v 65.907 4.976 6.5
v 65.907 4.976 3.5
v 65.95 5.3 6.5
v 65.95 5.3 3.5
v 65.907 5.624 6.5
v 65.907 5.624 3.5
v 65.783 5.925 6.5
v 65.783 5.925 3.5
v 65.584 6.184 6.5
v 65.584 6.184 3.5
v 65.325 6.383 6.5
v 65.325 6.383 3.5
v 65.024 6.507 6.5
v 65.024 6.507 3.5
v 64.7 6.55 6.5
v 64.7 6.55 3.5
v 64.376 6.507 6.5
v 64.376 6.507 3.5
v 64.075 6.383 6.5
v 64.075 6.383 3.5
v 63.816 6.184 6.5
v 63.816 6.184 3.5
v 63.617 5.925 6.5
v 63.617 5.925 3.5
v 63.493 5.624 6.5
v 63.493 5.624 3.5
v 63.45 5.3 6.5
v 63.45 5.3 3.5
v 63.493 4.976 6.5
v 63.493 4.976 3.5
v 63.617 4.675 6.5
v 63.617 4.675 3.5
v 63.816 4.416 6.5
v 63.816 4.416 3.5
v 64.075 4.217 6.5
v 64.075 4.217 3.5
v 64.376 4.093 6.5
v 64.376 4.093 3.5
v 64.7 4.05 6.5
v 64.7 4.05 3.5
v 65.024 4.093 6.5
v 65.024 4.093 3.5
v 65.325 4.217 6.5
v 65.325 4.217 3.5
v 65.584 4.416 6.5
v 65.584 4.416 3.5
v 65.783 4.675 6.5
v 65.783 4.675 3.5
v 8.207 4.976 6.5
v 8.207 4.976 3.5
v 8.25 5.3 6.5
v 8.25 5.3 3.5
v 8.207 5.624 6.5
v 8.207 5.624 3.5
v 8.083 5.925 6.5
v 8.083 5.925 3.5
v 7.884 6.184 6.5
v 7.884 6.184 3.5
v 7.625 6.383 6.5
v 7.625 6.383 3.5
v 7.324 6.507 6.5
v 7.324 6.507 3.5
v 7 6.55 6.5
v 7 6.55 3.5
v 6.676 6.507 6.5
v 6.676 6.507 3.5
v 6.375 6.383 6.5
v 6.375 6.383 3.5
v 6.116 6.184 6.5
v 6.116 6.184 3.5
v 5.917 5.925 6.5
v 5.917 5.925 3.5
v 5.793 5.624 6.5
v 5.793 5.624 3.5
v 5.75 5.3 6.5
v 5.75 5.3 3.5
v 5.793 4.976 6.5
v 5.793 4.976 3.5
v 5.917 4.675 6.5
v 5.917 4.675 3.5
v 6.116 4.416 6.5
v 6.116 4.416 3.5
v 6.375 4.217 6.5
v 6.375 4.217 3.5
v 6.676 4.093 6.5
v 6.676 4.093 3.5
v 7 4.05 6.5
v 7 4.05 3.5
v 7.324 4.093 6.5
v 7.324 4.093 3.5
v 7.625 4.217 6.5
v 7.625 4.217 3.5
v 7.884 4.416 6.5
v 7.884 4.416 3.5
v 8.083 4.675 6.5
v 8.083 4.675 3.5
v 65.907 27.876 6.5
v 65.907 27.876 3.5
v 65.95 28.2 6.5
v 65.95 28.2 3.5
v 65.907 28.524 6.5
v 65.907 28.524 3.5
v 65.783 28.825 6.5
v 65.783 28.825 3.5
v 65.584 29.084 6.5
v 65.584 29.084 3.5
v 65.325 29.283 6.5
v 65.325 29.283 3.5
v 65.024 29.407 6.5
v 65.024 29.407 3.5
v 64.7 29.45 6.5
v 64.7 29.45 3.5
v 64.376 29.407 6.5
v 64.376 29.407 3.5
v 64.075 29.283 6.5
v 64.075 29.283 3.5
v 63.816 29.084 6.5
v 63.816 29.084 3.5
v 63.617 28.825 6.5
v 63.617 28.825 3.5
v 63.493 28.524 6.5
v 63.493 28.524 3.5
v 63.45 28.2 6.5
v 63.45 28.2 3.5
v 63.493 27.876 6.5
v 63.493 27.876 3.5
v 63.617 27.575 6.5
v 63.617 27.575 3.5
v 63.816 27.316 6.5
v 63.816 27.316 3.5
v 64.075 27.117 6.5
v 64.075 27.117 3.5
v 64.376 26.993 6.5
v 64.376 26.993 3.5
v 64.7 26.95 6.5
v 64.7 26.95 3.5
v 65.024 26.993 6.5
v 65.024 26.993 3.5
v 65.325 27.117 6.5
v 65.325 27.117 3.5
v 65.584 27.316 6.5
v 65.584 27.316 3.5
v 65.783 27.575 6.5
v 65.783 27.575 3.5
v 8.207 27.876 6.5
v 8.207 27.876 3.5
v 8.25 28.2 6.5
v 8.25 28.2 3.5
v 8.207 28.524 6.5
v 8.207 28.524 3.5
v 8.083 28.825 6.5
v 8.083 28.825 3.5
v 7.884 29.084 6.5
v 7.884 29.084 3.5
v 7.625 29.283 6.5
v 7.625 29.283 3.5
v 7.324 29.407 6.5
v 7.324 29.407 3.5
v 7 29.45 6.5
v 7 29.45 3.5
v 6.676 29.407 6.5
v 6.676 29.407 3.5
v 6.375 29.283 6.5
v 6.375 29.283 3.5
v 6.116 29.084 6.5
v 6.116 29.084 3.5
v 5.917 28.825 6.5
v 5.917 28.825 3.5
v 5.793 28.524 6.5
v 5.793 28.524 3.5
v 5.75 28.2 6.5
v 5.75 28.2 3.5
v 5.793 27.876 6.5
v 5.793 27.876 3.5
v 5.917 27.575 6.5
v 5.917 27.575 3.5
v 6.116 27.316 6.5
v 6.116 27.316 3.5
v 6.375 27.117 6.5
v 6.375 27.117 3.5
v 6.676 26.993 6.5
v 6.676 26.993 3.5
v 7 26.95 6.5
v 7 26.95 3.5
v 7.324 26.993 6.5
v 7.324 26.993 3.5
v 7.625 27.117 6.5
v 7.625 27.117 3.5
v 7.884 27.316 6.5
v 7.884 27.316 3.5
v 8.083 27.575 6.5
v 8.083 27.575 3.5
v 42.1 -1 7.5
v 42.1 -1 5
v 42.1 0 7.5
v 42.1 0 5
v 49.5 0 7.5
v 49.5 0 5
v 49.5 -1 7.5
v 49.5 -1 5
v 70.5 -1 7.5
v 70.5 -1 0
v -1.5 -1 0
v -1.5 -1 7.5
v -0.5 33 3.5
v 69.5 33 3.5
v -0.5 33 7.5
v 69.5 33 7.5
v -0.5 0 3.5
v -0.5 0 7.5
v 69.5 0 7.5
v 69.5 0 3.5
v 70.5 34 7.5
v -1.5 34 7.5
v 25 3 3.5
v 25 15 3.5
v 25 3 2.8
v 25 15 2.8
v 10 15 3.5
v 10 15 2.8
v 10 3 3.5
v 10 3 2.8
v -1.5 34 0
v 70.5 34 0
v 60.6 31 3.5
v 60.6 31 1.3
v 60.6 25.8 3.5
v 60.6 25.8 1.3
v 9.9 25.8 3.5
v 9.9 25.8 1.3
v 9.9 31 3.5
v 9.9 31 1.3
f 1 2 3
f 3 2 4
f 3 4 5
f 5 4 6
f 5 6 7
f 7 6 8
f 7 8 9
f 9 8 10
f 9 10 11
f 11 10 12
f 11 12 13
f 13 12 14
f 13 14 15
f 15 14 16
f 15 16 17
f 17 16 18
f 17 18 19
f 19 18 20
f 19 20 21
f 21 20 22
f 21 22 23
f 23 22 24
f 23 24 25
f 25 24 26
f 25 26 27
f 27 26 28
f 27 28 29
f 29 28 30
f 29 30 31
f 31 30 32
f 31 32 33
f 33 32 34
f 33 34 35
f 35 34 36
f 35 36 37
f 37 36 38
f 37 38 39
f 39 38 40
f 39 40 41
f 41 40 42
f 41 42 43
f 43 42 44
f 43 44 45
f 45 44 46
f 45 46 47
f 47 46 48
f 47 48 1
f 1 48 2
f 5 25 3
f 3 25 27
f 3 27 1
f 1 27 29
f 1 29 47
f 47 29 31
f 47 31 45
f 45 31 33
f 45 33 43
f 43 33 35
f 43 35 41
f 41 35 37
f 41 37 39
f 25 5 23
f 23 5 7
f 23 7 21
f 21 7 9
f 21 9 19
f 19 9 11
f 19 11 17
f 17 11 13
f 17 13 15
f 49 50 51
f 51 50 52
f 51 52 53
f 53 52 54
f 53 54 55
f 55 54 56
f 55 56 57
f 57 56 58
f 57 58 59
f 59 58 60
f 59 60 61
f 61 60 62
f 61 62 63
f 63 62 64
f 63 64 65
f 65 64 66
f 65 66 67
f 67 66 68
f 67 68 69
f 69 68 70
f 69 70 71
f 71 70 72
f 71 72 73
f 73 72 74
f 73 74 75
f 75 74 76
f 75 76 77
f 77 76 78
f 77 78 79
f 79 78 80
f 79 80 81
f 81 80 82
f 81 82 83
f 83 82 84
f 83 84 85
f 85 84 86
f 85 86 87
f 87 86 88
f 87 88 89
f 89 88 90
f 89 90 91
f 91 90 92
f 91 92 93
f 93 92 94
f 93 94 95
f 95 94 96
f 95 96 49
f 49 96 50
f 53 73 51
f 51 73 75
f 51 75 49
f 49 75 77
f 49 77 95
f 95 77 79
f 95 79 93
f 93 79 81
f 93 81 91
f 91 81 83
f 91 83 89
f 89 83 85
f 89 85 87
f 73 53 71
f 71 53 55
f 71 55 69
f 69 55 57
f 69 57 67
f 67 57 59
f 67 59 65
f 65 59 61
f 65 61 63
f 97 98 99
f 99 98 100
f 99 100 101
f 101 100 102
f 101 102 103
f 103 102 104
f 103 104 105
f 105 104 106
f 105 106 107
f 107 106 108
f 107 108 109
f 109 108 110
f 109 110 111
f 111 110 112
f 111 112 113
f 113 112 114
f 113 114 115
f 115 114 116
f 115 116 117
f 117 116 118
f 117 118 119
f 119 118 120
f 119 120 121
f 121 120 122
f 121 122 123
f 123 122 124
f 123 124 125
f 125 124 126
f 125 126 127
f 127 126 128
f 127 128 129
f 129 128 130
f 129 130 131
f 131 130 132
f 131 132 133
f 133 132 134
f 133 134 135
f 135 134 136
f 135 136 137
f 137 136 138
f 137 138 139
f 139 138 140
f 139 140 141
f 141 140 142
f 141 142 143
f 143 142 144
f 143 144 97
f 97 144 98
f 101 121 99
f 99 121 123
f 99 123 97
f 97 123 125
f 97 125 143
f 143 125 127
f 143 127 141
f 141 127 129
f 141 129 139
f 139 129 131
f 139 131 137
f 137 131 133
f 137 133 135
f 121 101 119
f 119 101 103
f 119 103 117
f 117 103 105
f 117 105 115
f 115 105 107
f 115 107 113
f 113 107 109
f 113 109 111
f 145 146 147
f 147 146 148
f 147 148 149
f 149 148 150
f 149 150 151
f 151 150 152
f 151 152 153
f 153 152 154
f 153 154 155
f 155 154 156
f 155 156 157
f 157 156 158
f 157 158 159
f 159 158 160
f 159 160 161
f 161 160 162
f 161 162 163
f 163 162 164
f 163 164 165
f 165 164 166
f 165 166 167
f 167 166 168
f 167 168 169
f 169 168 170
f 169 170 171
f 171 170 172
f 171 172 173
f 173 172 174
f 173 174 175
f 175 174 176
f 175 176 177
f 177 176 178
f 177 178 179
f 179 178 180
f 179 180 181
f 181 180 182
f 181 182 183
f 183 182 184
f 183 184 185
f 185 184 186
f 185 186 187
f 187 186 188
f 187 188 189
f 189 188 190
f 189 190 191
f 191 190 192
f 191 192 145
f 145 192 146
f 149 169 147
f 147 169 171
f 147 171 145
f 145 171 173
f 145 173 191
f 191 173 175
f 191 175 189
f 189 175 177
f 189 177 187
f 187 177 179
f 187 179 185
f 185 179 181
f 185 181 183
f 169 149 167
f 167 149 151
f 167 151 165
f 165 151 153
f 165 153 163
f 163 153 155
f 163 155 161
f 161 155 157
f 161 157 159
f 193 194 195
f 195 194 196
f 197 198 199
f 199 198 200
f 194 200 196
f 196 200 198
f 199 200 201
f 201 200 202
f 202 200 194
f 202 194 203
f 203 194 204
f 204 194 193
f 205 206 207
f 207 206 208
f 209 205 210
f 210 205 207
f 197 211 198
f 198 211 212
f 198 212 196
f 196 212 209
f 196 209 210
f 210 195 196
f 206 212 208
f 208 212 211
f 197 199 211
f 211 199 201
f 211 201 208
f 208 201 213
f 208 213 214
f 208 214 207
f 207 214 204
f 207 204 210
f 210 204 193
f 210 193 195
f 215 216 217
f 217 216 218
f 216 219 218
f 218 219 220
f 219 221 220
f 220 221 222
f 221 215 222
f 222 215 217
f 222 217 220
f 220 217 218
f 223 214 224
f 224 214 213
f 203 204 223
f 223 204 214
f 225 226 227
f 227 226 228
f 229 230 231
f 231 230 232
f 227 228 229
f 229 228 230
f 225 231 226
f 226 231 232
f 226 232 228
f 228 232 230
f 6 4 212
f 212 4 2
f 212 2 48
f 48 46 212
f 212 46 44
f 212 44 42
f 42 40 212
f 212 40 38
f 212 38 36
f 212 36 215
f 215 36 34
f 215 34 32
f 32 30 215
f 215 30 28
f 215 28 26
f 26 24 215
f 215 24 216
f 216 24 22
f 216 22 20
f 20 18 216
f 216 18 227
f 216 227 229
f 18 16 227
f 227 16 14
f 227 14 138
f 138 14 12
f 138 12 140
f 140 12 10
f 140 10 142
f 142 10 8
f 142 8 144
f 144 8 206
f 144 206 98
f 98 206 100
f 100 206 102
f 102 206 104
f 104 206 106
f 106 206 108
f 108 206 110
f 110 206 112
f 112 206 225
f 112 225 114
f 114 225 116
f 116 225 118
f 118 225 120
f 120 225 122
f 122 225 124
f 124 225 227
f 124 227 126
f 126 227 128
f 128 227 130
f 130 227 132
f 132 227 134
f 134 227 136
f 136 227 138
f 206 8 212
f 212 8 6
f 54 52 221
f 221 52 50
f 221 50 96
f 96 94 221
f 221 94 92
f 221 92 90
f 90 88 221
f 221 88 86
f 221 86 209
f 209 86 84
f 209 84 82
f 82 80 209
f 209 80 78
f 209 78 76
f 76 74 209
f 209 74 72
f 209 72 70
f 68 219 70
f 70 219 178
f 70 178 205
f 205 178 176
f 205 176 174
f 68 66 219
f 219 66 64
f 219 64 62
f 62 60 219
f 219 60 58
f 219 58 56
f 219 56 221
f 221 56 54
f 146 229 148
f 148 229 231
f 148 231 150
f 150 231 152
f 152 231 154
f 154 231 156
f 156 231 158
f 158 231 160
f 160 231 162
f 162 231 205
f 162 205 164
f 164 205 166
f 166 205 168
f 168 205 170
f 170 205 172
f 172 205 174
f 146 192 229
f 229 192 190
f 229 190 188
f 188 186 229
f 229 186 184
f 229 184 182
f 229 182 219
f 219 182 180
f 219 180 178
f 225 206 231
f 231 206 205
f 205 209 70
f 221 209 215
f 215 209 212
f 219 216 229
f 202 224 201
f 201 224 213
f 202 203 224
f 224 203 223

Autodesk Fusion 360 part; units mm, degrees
sketch "Sketch1" plane through (0, 0, 0) normal (0, 0, 1) x (1, 0, 0)
  line L0 (0, 0) -> (70.5, 0)
  line L1 (70.5, 0) -> (70.5, 32)
  line L2 (70.5, 32) -> (0, 32)
  line L3 (0, 32) -> (0, 0)
  dimension "d1" = 70.5
  dimension "d2" = 32
extrude "Extrude1" add sketch "Sketch1" along normal blind 1.5
extrude "Extrude2" add 1 faces at (47, 32, 0.5) along direction (0, 1, 0) blind 1
extrude "Extrude3" add 1 faces at (23.5, 22, 1.5) along direction (0, 0, 1) blind 2
sketch "Sketch2" plane through (0, 0, 3.5) normal (0, 0, 1) x (-1, 0, 0)
  line L0 (0, -33) -> (0, 0)
  line L1 (0, 0) -> (-70.5, 0)
  line L2 (-70.5, 0) -> (-70.5, -33)
  line L3 (-70.5, -33) -> (0, -33)
  line L4 (-35.25, -33) -> (-35.25, -31)
  line L5 (-35.25, -31) -> (-35.25, -28.75)
  line L6 (-60.25, -26.5) -> (-10.25, -26.5)
  line L7 (-10.25, -26.5) -> (-10.25, -31)
  line L8 (-10.25, -31) -> (-60.25, -31)
  line L9 (-60.25, -31) -> (-60.25, -26.5)
  line L10 (-60.25, -26.5) -> (-10.25, -31) construction
  line L11 (-10.25, -26.5) -> (-60.25, -31) construction
  point P0 (-35.25, -28.75)
  dimension "d9" = 2
  dimension "d10" = 2.25
  dimension "d11" = 50
  dimension "d12" = 4.5
extrude "Extrude4" cut sketch "Sketch2" against normal blind 2.2 contours L6 L7 L8 L9
extrude "Extrude5" cut 1 faces at (43.5833, 26.5, 2.7667) along direction (0, -1, 0) blind 0.7
extrude "Extrude6" cut 1 faces at (10.25, 27.5333, 2.7667) along direction (-1, 0, 0) blind 0.35
extrude "Extrude7" cut 1 faces at (60.25, 27.5333, 2.0333) along direction (1, 0, 0) blind 0.35
extrude "Extrude8" add 1 faces at (0, 22, 2.3333) along direction (-1, 0, 0) blind 1.5
extrude "Extrude9" add 1 faces at (22.5, 33, 1.1667) along direction (0, 1, 0) blind 1
extrude "Extrude10" add 1 faces at (46.5, 0, 1.1667) along direction (0, -1, 0) blind 1
sketch "Sketch3" plane through (0, 0, 3.5) normal (0, 0, 1) x (-1, 0, 0)
  line L0 (-60.6, -25.8) -> (-9.9, -25.8)
  line L1 (-9.9, -25.8) -> (-9.9, -31)
  line L2 (-9.9, -31) -> (-60.6, -31)
  line L3 (-60.6, -31) -> (-60.6, -25.8)
  line L4 (-70.5, 1) -> (-70.5, -34)
  line L5 (-70.5, -34) -> (1.5, -34)
  line L6 (1.5, -34) -> (1.5, 1)
  line L7 (1.5, 1) -> (-70.5, 1)
  line L8 (-10, -15) -> (-25, -15)
  line L9 (-25, -15) -> (-25, -3)
  line L10 (-25, -3) -> (-10, -3)
  line L11 (-10, -3) -> (-10, -15)
extrude "Extrude11" cut sketch "Sketch3" against normal blind 0.7 contours L8 L9 L10 L11
sketch "Sketch4" plane through (0, 0, 3.5) normal (0, 0, 1) x (-1, 0, 0)
  line L0 (-25, -15) -> (-25, -3)
  line L1 (-25, -3) -> (-10, -3)
  line L2 (-10, -3) -> (-10, -15)
  line L3 (-10, -15) -> (-25, -15)
  line L4 (-60.6, -25.8) -> (-9.9, -25.8)
  line L5 (-9.9, -25.8) -> (-9.9, -31)
  line L6 (-9.9, -31) -> (-60.6, -31)
  line L7 (-60.6, -31) -> (-60.6, -25.8)
  line L8 (-70.5, 1) -> (-70.5, -34)
  line L9 (-70.5, -34) -> (1.5, -34)
  line L10 (1.5, -34) -> (1.5, 1)
  line L11 (1.5, 1) -> (-70.5, 1)
  line L12 (1.5, -34) -> (-70.5, -34)
  line L13 (-70.5, -34) -> (-70.5, -33)
  line L14 (-70.5, -33) -> (1.5, -33)
  line L15 (1.5, -33) -> (1.5, -34)
  line L16 (1.5, 1) -> (0.5, 1)
  line L17 (0.5, 1) -> (0.5, -34)
  line L18 (0.5, -34) -> (1.5, -34)
  line L19 (1.5, -34) -> (1.5, 1)
  line L20 (1.5, 1) -> (-70.5, 1)
  line L21 (-70.5, 1) -> (-70.5, 0)
  line L22 (-70.5, 0) -> (1.5, 0)
  line L23 (1.5, 0) -> (1.5, 1)
  line L24 (-70.5, -34) -> (-69.5, -34)
  line L25 (-69.5, -34) -> (-69.5, 1)
  line L26 (-69.5, 1) -> (-70.5, 1)
  line L27 (-70.5, 1) -> (-70.5, -34)
  dimension "d29" = 1
  dimension "d30" = 1
  dimension "d31" = 1
  dimension "d32" = 1
extrude "Extrude12" add sketch "Sketch4" along normal blind 4 contours L8 L11 L20 L21 L22 L25 L26 L27 | L8 L14 L22 L25 L27 | L11 L17 L20 L22 L25 | L8 L9 L12 L13 L14 L24 L25 L27 | L10 L11 L16 L17 L19 L20 L22 L23 | L9 L12 L14 L17 L25 | L10 L14 L17 L19 L22 | L9 L10 L12 L14 L15 L17 L18 L19
sketch "Sketch5" plane through (0, 0, 3.5) normal (0, 0, 1) x (-1, 0, 0)
  line L0 (-69.5, -33) -> (0.5, -33)
  line L1 (0.5, -33) -> (0.5, 0)
  line L2 (0.5, 0) -> (-69.5, 0)
  line L3 (-69.5, 0) -> (-69.5, -33)
  line L4 (-25, -15) -> (-25, -3)
  line L5 (-25, -3) -> (-10, -3)
  line L6 (-10, -3) -> (-10, -15)
  line L7 (-10, -15) -> (-25, -15)
  line L8 (-60.6, -25.8) -> (-9.9, -25.8)
  line L9 (-9.9, -25.8) -> (-9.9, -31)
  line L10 (-9.9, -31) -> (-60.6, -31)
  line L11 (-60.6, -31) -> (-60.6, -25.8)
  line L12 (-70.5579, -29.7) -> (-66.2579, -29.7)
  circle A0 centre (-66.2579, -29.7) radius 1.375
  line L13 (-2, -34) -> (-2, -29.7)
  line L14 (1.461, -29.9433) -> (-5.539, -29.9433)
  circle A1 centre (-5.539, -29.9433) radius 1.375
  dimension "d36" = 4.3
  dimension "d37" = 2.75
  dimension "d38" = 4.3
  dimension "d39" = 7
  dimension "d40" = 2.75
extrude "Extrude13" add sketch "Sketch5" along normal blind 5 contours A1 | A0
sketch "Sketch6" plane through (0, -1, 0) normal (0, -1, 0) x (1, 0, 0)
  line L0 (-1.5, 0) -> (70.5, 0)
  line L1 (70.5, 0) -> (70.5, 7.5)
  line L2 (70.5, 7.5) -> (-1.5, 7.5)
  line L3 (-1.5, 7.5) -> (-1.5, 0)
  line L4 (70.5, 6.1254) -> (49.5, 6.1254)
  line L5 (49.5, 6.1254) -> (42.1, 6.1254)
  line L6 (42.1, 6.1254) -> (42.1, 7.5)
  line L7 (42.1, 7.5) -> (42.1, 8)
  line L8 (42.1, 8) -> (49.5, 8)
  line L9 (42.1, 8) -> (49.5, 8)
  line L10 (49.5, 8) -> (49.5, 5)
  line L11 (49.5, 5) -> (42.1, 5)
  line L12 (42.1, 5) -> (42.1, 8)
  dimension "d43" = 21
  dimension "d44" = 7.4
  dimension "d45" = 0.5
  dimension "d46" = 3
extrude "Extrude14" cut sketch "Sketch6" against normal blind 1 contours L2 L7 L8 L9 L10 L12 | L2 L5 L6 L10 L12 | L5 L10 L11 L12
sketch "Sketch7" plane through (0, 0, 3.5) normal (0, 0, 1) x (-1, 0, 0)
  circle A0 centre (-66.2579, -29.7) radius 1.375
  circle A1 centre (-5.539, -29.9433) radius 1.375
  line L0 (-69.5, -33) -> (0.5, -33)
  line L1 (0.5, -33) -> (0.5, 0)
  line L2 (0.5, 0) -> (-69.5, 0)
  line L3 (-69.5, 0) -> (-69.5, -33)
  line L4 (-25, -15) -> (-25, -3)
  line L5 (-25, -3) -> (-10, -3)
  line L6 (-10, -3) -> (-10, -15)
  line L7 (-10, -15) -> (-25, -15)
  line L8 (-60.6, -25.8) -> (-9.9, -25.8)
  line L9 (-9.9, -25.8) -> (-9.9, -31)
  line L10 (-9.9, -31) -> (-60.6, -31)
  line L11 (-60.6, -31) -> (-60.6, -25.8)
  line L12 (-66.2579, -29.7) -> (-66.2579, -6.5)
  circle A2 centre (-66.2579, -6.5) radius 1.375
  line L13 (-5.539, -29.9433) -> (-5.539, -6.7433)
  circle A3 centre (-5.539, -6.7433) radius 1.375
  dimension "d49" = 23.2
  dimension "d50" = 2.75
  dimension "d51" = 23.2
  dimension "d52" = 2.75
extrude "Extrude15" add sketch "Sketch7" along normal blind 5 contours A2 | A3
extrude "Extrude16" cut 2 faces at (66.7302, 30.022, 8.5) (66.8634, 6.1681, 8.5) along direction (0, 0, -1) blind 5
extrude "Extrude17" cut 2 faces at (5.5048, 28.9699, 8.5) (5.4119, 6.9636, 8.5) along direction (0, 0, -1) blind 5
sketch "Sketch8" plane through (0, 0, 3.5) normal (0, 0, 1) x (-1, 0, 0)
  line L0 (-69.5, -33) -> (0.5, -33)
  line L1 (0.5, -33) -> (0.5, 0)
  line L2 (0.5, 0) -> (-69.5, 0)
  line L3 (-69.5, 0) -> (-69.5, -33)
  line L4 (-25, -15) -> (-25, -3)
  line L5 (-25, -3) -> (-10, -3)
  line L6 (-10, -3) -> (-10, -15)
  line L7 (-10, -15) -> (-25, -15)
  line L8 (-60.6, -25.8) -> (-9.9, -25.8)
  line L9 (-9.9, -25.8) -> (-9.9, -31)
  line L10 (-9.9, -31) -> (-60.6, -31)
  line L11 (-60.6, -31) -> (-60.6, -25.8)
  line L12 (-70.5, -34) -> (-70.5, -28.2)
  line L13 (-70.5, -28.2) -> (-66.5, -28.2)
  line L14 (-70.5, -34) -> (-64.7, -34)
  line L15 (-64.7, -34) -> (-64.7, -30)
  line L16 (-64.7, -30) -> (-64.7, -27.5)
  line L17 (-66.5, -28.2) -> (-64.7, -28.2)
  circle A0 centre (-64.7, -28.2) radius 1.25
  line L18 (-64.7, -28.2) -> (-64.7, -26.95)
  line L19 (-64.7, -26.95) -> (-64.7, -6.95)
  circle A1 centre (-64.7, -5.7) radius 1.25
  line L20 (-64.7, -5.7) -> (-8.25, -5.7)
  circle A2 centre (-7, -5.7) radius 1.25
  line L21 (-7, -5.7) -> (-7, -26.95)
  circle A3 centre (-7, -28.2) radius 1.25
  dimension "d72" = 5.8
  dimension "d74" = 4
  dimension "d75" = 5.8
  dimension "d76" = 4
  dimension "d77" = 2.5
  dimension "d78" = 1.25
  dimension "d79" = 20
  dimension "d80" = 2.5
  dimension "d81" = 56.45
  dimension "d82" = 2.5
  dimension "d83" = 21.25
  dimension "d84" = 2.5
extrude "Extrude18" add sketch "Sketch8" along normal blind 3 contours A3 | A2 | A1 | L16 L17 A0 | L16 A0 L18 | L16 L17 A0 L18
sketch "Sketch9" plane through (0, 0, 6.5) normal (0, 0, 1) x (-1, 0, 0)
  circle A0 centre (-64.7, -28.2) radius 1.25
extrude "Extrude19" cut 2 faces at (6.88, 5.4166, 6.5) (64.5007, 5.6393, 6.5) along direction (0, 0, -1) blind 3
sketch "Sketch10" plane through (0, 0, 3.5) normal (0, 0, 1) x (-1, 0, 0)
  circle A0 centre (-64.7, -28.2) radius 1.25
  circle A1 centre (-7, -28.2) radius 1.25
  line L0 (-69.5, -33) -> (0.5, -33)
  line L1 (0.5, -33) -> (0.5, 0)
  line L2 (0.5, 0) -> (-69.5, 0)
  line L3 (-69.5, 0) -> (-69.5, -33)
  line L4 (-25, -15) -> (-25, -3)
  line L5 (-25, -3) -> (-10, -3)
  line L6 (-10, -3) -> (-10, -15)
  line L7 (-10, -15) -> (-25, -15)
  line L8 (-60.6, -25.8) -> (-9.9, -25.8)
  line L9 (-9.9, -25.8) -> (-9.9, -31)
  line L10 (-9.9, -31) -> (-60.6, -31)
  line L11 (-60.6, -31) -> (-60.6, -25.8)
  line L12 (-64.7, -28.2) -> (-64.7, -26.95)
  line L13 (-64.7, -26.95) -> (-64.7, -6.55)
  circle A2 centre (-64.7, -5.3) radius 1.25
  line L14 (-64.7, -5.3) -> (-63.45, -5.3)
  line L15 (-63.45, -5.3) -> (-8.25, -5.3)
  circle A3 centre (-7, -5.3) radius 1.25
  dimension "d89" = 20.4
  dimension "d90" = 2.5
  dimension "d91" = 55.2
  dimension "d92" = 2.5
extrude "Extrude20" add sketch "Sketch10" along normal blind 3 contours A3 | A2
